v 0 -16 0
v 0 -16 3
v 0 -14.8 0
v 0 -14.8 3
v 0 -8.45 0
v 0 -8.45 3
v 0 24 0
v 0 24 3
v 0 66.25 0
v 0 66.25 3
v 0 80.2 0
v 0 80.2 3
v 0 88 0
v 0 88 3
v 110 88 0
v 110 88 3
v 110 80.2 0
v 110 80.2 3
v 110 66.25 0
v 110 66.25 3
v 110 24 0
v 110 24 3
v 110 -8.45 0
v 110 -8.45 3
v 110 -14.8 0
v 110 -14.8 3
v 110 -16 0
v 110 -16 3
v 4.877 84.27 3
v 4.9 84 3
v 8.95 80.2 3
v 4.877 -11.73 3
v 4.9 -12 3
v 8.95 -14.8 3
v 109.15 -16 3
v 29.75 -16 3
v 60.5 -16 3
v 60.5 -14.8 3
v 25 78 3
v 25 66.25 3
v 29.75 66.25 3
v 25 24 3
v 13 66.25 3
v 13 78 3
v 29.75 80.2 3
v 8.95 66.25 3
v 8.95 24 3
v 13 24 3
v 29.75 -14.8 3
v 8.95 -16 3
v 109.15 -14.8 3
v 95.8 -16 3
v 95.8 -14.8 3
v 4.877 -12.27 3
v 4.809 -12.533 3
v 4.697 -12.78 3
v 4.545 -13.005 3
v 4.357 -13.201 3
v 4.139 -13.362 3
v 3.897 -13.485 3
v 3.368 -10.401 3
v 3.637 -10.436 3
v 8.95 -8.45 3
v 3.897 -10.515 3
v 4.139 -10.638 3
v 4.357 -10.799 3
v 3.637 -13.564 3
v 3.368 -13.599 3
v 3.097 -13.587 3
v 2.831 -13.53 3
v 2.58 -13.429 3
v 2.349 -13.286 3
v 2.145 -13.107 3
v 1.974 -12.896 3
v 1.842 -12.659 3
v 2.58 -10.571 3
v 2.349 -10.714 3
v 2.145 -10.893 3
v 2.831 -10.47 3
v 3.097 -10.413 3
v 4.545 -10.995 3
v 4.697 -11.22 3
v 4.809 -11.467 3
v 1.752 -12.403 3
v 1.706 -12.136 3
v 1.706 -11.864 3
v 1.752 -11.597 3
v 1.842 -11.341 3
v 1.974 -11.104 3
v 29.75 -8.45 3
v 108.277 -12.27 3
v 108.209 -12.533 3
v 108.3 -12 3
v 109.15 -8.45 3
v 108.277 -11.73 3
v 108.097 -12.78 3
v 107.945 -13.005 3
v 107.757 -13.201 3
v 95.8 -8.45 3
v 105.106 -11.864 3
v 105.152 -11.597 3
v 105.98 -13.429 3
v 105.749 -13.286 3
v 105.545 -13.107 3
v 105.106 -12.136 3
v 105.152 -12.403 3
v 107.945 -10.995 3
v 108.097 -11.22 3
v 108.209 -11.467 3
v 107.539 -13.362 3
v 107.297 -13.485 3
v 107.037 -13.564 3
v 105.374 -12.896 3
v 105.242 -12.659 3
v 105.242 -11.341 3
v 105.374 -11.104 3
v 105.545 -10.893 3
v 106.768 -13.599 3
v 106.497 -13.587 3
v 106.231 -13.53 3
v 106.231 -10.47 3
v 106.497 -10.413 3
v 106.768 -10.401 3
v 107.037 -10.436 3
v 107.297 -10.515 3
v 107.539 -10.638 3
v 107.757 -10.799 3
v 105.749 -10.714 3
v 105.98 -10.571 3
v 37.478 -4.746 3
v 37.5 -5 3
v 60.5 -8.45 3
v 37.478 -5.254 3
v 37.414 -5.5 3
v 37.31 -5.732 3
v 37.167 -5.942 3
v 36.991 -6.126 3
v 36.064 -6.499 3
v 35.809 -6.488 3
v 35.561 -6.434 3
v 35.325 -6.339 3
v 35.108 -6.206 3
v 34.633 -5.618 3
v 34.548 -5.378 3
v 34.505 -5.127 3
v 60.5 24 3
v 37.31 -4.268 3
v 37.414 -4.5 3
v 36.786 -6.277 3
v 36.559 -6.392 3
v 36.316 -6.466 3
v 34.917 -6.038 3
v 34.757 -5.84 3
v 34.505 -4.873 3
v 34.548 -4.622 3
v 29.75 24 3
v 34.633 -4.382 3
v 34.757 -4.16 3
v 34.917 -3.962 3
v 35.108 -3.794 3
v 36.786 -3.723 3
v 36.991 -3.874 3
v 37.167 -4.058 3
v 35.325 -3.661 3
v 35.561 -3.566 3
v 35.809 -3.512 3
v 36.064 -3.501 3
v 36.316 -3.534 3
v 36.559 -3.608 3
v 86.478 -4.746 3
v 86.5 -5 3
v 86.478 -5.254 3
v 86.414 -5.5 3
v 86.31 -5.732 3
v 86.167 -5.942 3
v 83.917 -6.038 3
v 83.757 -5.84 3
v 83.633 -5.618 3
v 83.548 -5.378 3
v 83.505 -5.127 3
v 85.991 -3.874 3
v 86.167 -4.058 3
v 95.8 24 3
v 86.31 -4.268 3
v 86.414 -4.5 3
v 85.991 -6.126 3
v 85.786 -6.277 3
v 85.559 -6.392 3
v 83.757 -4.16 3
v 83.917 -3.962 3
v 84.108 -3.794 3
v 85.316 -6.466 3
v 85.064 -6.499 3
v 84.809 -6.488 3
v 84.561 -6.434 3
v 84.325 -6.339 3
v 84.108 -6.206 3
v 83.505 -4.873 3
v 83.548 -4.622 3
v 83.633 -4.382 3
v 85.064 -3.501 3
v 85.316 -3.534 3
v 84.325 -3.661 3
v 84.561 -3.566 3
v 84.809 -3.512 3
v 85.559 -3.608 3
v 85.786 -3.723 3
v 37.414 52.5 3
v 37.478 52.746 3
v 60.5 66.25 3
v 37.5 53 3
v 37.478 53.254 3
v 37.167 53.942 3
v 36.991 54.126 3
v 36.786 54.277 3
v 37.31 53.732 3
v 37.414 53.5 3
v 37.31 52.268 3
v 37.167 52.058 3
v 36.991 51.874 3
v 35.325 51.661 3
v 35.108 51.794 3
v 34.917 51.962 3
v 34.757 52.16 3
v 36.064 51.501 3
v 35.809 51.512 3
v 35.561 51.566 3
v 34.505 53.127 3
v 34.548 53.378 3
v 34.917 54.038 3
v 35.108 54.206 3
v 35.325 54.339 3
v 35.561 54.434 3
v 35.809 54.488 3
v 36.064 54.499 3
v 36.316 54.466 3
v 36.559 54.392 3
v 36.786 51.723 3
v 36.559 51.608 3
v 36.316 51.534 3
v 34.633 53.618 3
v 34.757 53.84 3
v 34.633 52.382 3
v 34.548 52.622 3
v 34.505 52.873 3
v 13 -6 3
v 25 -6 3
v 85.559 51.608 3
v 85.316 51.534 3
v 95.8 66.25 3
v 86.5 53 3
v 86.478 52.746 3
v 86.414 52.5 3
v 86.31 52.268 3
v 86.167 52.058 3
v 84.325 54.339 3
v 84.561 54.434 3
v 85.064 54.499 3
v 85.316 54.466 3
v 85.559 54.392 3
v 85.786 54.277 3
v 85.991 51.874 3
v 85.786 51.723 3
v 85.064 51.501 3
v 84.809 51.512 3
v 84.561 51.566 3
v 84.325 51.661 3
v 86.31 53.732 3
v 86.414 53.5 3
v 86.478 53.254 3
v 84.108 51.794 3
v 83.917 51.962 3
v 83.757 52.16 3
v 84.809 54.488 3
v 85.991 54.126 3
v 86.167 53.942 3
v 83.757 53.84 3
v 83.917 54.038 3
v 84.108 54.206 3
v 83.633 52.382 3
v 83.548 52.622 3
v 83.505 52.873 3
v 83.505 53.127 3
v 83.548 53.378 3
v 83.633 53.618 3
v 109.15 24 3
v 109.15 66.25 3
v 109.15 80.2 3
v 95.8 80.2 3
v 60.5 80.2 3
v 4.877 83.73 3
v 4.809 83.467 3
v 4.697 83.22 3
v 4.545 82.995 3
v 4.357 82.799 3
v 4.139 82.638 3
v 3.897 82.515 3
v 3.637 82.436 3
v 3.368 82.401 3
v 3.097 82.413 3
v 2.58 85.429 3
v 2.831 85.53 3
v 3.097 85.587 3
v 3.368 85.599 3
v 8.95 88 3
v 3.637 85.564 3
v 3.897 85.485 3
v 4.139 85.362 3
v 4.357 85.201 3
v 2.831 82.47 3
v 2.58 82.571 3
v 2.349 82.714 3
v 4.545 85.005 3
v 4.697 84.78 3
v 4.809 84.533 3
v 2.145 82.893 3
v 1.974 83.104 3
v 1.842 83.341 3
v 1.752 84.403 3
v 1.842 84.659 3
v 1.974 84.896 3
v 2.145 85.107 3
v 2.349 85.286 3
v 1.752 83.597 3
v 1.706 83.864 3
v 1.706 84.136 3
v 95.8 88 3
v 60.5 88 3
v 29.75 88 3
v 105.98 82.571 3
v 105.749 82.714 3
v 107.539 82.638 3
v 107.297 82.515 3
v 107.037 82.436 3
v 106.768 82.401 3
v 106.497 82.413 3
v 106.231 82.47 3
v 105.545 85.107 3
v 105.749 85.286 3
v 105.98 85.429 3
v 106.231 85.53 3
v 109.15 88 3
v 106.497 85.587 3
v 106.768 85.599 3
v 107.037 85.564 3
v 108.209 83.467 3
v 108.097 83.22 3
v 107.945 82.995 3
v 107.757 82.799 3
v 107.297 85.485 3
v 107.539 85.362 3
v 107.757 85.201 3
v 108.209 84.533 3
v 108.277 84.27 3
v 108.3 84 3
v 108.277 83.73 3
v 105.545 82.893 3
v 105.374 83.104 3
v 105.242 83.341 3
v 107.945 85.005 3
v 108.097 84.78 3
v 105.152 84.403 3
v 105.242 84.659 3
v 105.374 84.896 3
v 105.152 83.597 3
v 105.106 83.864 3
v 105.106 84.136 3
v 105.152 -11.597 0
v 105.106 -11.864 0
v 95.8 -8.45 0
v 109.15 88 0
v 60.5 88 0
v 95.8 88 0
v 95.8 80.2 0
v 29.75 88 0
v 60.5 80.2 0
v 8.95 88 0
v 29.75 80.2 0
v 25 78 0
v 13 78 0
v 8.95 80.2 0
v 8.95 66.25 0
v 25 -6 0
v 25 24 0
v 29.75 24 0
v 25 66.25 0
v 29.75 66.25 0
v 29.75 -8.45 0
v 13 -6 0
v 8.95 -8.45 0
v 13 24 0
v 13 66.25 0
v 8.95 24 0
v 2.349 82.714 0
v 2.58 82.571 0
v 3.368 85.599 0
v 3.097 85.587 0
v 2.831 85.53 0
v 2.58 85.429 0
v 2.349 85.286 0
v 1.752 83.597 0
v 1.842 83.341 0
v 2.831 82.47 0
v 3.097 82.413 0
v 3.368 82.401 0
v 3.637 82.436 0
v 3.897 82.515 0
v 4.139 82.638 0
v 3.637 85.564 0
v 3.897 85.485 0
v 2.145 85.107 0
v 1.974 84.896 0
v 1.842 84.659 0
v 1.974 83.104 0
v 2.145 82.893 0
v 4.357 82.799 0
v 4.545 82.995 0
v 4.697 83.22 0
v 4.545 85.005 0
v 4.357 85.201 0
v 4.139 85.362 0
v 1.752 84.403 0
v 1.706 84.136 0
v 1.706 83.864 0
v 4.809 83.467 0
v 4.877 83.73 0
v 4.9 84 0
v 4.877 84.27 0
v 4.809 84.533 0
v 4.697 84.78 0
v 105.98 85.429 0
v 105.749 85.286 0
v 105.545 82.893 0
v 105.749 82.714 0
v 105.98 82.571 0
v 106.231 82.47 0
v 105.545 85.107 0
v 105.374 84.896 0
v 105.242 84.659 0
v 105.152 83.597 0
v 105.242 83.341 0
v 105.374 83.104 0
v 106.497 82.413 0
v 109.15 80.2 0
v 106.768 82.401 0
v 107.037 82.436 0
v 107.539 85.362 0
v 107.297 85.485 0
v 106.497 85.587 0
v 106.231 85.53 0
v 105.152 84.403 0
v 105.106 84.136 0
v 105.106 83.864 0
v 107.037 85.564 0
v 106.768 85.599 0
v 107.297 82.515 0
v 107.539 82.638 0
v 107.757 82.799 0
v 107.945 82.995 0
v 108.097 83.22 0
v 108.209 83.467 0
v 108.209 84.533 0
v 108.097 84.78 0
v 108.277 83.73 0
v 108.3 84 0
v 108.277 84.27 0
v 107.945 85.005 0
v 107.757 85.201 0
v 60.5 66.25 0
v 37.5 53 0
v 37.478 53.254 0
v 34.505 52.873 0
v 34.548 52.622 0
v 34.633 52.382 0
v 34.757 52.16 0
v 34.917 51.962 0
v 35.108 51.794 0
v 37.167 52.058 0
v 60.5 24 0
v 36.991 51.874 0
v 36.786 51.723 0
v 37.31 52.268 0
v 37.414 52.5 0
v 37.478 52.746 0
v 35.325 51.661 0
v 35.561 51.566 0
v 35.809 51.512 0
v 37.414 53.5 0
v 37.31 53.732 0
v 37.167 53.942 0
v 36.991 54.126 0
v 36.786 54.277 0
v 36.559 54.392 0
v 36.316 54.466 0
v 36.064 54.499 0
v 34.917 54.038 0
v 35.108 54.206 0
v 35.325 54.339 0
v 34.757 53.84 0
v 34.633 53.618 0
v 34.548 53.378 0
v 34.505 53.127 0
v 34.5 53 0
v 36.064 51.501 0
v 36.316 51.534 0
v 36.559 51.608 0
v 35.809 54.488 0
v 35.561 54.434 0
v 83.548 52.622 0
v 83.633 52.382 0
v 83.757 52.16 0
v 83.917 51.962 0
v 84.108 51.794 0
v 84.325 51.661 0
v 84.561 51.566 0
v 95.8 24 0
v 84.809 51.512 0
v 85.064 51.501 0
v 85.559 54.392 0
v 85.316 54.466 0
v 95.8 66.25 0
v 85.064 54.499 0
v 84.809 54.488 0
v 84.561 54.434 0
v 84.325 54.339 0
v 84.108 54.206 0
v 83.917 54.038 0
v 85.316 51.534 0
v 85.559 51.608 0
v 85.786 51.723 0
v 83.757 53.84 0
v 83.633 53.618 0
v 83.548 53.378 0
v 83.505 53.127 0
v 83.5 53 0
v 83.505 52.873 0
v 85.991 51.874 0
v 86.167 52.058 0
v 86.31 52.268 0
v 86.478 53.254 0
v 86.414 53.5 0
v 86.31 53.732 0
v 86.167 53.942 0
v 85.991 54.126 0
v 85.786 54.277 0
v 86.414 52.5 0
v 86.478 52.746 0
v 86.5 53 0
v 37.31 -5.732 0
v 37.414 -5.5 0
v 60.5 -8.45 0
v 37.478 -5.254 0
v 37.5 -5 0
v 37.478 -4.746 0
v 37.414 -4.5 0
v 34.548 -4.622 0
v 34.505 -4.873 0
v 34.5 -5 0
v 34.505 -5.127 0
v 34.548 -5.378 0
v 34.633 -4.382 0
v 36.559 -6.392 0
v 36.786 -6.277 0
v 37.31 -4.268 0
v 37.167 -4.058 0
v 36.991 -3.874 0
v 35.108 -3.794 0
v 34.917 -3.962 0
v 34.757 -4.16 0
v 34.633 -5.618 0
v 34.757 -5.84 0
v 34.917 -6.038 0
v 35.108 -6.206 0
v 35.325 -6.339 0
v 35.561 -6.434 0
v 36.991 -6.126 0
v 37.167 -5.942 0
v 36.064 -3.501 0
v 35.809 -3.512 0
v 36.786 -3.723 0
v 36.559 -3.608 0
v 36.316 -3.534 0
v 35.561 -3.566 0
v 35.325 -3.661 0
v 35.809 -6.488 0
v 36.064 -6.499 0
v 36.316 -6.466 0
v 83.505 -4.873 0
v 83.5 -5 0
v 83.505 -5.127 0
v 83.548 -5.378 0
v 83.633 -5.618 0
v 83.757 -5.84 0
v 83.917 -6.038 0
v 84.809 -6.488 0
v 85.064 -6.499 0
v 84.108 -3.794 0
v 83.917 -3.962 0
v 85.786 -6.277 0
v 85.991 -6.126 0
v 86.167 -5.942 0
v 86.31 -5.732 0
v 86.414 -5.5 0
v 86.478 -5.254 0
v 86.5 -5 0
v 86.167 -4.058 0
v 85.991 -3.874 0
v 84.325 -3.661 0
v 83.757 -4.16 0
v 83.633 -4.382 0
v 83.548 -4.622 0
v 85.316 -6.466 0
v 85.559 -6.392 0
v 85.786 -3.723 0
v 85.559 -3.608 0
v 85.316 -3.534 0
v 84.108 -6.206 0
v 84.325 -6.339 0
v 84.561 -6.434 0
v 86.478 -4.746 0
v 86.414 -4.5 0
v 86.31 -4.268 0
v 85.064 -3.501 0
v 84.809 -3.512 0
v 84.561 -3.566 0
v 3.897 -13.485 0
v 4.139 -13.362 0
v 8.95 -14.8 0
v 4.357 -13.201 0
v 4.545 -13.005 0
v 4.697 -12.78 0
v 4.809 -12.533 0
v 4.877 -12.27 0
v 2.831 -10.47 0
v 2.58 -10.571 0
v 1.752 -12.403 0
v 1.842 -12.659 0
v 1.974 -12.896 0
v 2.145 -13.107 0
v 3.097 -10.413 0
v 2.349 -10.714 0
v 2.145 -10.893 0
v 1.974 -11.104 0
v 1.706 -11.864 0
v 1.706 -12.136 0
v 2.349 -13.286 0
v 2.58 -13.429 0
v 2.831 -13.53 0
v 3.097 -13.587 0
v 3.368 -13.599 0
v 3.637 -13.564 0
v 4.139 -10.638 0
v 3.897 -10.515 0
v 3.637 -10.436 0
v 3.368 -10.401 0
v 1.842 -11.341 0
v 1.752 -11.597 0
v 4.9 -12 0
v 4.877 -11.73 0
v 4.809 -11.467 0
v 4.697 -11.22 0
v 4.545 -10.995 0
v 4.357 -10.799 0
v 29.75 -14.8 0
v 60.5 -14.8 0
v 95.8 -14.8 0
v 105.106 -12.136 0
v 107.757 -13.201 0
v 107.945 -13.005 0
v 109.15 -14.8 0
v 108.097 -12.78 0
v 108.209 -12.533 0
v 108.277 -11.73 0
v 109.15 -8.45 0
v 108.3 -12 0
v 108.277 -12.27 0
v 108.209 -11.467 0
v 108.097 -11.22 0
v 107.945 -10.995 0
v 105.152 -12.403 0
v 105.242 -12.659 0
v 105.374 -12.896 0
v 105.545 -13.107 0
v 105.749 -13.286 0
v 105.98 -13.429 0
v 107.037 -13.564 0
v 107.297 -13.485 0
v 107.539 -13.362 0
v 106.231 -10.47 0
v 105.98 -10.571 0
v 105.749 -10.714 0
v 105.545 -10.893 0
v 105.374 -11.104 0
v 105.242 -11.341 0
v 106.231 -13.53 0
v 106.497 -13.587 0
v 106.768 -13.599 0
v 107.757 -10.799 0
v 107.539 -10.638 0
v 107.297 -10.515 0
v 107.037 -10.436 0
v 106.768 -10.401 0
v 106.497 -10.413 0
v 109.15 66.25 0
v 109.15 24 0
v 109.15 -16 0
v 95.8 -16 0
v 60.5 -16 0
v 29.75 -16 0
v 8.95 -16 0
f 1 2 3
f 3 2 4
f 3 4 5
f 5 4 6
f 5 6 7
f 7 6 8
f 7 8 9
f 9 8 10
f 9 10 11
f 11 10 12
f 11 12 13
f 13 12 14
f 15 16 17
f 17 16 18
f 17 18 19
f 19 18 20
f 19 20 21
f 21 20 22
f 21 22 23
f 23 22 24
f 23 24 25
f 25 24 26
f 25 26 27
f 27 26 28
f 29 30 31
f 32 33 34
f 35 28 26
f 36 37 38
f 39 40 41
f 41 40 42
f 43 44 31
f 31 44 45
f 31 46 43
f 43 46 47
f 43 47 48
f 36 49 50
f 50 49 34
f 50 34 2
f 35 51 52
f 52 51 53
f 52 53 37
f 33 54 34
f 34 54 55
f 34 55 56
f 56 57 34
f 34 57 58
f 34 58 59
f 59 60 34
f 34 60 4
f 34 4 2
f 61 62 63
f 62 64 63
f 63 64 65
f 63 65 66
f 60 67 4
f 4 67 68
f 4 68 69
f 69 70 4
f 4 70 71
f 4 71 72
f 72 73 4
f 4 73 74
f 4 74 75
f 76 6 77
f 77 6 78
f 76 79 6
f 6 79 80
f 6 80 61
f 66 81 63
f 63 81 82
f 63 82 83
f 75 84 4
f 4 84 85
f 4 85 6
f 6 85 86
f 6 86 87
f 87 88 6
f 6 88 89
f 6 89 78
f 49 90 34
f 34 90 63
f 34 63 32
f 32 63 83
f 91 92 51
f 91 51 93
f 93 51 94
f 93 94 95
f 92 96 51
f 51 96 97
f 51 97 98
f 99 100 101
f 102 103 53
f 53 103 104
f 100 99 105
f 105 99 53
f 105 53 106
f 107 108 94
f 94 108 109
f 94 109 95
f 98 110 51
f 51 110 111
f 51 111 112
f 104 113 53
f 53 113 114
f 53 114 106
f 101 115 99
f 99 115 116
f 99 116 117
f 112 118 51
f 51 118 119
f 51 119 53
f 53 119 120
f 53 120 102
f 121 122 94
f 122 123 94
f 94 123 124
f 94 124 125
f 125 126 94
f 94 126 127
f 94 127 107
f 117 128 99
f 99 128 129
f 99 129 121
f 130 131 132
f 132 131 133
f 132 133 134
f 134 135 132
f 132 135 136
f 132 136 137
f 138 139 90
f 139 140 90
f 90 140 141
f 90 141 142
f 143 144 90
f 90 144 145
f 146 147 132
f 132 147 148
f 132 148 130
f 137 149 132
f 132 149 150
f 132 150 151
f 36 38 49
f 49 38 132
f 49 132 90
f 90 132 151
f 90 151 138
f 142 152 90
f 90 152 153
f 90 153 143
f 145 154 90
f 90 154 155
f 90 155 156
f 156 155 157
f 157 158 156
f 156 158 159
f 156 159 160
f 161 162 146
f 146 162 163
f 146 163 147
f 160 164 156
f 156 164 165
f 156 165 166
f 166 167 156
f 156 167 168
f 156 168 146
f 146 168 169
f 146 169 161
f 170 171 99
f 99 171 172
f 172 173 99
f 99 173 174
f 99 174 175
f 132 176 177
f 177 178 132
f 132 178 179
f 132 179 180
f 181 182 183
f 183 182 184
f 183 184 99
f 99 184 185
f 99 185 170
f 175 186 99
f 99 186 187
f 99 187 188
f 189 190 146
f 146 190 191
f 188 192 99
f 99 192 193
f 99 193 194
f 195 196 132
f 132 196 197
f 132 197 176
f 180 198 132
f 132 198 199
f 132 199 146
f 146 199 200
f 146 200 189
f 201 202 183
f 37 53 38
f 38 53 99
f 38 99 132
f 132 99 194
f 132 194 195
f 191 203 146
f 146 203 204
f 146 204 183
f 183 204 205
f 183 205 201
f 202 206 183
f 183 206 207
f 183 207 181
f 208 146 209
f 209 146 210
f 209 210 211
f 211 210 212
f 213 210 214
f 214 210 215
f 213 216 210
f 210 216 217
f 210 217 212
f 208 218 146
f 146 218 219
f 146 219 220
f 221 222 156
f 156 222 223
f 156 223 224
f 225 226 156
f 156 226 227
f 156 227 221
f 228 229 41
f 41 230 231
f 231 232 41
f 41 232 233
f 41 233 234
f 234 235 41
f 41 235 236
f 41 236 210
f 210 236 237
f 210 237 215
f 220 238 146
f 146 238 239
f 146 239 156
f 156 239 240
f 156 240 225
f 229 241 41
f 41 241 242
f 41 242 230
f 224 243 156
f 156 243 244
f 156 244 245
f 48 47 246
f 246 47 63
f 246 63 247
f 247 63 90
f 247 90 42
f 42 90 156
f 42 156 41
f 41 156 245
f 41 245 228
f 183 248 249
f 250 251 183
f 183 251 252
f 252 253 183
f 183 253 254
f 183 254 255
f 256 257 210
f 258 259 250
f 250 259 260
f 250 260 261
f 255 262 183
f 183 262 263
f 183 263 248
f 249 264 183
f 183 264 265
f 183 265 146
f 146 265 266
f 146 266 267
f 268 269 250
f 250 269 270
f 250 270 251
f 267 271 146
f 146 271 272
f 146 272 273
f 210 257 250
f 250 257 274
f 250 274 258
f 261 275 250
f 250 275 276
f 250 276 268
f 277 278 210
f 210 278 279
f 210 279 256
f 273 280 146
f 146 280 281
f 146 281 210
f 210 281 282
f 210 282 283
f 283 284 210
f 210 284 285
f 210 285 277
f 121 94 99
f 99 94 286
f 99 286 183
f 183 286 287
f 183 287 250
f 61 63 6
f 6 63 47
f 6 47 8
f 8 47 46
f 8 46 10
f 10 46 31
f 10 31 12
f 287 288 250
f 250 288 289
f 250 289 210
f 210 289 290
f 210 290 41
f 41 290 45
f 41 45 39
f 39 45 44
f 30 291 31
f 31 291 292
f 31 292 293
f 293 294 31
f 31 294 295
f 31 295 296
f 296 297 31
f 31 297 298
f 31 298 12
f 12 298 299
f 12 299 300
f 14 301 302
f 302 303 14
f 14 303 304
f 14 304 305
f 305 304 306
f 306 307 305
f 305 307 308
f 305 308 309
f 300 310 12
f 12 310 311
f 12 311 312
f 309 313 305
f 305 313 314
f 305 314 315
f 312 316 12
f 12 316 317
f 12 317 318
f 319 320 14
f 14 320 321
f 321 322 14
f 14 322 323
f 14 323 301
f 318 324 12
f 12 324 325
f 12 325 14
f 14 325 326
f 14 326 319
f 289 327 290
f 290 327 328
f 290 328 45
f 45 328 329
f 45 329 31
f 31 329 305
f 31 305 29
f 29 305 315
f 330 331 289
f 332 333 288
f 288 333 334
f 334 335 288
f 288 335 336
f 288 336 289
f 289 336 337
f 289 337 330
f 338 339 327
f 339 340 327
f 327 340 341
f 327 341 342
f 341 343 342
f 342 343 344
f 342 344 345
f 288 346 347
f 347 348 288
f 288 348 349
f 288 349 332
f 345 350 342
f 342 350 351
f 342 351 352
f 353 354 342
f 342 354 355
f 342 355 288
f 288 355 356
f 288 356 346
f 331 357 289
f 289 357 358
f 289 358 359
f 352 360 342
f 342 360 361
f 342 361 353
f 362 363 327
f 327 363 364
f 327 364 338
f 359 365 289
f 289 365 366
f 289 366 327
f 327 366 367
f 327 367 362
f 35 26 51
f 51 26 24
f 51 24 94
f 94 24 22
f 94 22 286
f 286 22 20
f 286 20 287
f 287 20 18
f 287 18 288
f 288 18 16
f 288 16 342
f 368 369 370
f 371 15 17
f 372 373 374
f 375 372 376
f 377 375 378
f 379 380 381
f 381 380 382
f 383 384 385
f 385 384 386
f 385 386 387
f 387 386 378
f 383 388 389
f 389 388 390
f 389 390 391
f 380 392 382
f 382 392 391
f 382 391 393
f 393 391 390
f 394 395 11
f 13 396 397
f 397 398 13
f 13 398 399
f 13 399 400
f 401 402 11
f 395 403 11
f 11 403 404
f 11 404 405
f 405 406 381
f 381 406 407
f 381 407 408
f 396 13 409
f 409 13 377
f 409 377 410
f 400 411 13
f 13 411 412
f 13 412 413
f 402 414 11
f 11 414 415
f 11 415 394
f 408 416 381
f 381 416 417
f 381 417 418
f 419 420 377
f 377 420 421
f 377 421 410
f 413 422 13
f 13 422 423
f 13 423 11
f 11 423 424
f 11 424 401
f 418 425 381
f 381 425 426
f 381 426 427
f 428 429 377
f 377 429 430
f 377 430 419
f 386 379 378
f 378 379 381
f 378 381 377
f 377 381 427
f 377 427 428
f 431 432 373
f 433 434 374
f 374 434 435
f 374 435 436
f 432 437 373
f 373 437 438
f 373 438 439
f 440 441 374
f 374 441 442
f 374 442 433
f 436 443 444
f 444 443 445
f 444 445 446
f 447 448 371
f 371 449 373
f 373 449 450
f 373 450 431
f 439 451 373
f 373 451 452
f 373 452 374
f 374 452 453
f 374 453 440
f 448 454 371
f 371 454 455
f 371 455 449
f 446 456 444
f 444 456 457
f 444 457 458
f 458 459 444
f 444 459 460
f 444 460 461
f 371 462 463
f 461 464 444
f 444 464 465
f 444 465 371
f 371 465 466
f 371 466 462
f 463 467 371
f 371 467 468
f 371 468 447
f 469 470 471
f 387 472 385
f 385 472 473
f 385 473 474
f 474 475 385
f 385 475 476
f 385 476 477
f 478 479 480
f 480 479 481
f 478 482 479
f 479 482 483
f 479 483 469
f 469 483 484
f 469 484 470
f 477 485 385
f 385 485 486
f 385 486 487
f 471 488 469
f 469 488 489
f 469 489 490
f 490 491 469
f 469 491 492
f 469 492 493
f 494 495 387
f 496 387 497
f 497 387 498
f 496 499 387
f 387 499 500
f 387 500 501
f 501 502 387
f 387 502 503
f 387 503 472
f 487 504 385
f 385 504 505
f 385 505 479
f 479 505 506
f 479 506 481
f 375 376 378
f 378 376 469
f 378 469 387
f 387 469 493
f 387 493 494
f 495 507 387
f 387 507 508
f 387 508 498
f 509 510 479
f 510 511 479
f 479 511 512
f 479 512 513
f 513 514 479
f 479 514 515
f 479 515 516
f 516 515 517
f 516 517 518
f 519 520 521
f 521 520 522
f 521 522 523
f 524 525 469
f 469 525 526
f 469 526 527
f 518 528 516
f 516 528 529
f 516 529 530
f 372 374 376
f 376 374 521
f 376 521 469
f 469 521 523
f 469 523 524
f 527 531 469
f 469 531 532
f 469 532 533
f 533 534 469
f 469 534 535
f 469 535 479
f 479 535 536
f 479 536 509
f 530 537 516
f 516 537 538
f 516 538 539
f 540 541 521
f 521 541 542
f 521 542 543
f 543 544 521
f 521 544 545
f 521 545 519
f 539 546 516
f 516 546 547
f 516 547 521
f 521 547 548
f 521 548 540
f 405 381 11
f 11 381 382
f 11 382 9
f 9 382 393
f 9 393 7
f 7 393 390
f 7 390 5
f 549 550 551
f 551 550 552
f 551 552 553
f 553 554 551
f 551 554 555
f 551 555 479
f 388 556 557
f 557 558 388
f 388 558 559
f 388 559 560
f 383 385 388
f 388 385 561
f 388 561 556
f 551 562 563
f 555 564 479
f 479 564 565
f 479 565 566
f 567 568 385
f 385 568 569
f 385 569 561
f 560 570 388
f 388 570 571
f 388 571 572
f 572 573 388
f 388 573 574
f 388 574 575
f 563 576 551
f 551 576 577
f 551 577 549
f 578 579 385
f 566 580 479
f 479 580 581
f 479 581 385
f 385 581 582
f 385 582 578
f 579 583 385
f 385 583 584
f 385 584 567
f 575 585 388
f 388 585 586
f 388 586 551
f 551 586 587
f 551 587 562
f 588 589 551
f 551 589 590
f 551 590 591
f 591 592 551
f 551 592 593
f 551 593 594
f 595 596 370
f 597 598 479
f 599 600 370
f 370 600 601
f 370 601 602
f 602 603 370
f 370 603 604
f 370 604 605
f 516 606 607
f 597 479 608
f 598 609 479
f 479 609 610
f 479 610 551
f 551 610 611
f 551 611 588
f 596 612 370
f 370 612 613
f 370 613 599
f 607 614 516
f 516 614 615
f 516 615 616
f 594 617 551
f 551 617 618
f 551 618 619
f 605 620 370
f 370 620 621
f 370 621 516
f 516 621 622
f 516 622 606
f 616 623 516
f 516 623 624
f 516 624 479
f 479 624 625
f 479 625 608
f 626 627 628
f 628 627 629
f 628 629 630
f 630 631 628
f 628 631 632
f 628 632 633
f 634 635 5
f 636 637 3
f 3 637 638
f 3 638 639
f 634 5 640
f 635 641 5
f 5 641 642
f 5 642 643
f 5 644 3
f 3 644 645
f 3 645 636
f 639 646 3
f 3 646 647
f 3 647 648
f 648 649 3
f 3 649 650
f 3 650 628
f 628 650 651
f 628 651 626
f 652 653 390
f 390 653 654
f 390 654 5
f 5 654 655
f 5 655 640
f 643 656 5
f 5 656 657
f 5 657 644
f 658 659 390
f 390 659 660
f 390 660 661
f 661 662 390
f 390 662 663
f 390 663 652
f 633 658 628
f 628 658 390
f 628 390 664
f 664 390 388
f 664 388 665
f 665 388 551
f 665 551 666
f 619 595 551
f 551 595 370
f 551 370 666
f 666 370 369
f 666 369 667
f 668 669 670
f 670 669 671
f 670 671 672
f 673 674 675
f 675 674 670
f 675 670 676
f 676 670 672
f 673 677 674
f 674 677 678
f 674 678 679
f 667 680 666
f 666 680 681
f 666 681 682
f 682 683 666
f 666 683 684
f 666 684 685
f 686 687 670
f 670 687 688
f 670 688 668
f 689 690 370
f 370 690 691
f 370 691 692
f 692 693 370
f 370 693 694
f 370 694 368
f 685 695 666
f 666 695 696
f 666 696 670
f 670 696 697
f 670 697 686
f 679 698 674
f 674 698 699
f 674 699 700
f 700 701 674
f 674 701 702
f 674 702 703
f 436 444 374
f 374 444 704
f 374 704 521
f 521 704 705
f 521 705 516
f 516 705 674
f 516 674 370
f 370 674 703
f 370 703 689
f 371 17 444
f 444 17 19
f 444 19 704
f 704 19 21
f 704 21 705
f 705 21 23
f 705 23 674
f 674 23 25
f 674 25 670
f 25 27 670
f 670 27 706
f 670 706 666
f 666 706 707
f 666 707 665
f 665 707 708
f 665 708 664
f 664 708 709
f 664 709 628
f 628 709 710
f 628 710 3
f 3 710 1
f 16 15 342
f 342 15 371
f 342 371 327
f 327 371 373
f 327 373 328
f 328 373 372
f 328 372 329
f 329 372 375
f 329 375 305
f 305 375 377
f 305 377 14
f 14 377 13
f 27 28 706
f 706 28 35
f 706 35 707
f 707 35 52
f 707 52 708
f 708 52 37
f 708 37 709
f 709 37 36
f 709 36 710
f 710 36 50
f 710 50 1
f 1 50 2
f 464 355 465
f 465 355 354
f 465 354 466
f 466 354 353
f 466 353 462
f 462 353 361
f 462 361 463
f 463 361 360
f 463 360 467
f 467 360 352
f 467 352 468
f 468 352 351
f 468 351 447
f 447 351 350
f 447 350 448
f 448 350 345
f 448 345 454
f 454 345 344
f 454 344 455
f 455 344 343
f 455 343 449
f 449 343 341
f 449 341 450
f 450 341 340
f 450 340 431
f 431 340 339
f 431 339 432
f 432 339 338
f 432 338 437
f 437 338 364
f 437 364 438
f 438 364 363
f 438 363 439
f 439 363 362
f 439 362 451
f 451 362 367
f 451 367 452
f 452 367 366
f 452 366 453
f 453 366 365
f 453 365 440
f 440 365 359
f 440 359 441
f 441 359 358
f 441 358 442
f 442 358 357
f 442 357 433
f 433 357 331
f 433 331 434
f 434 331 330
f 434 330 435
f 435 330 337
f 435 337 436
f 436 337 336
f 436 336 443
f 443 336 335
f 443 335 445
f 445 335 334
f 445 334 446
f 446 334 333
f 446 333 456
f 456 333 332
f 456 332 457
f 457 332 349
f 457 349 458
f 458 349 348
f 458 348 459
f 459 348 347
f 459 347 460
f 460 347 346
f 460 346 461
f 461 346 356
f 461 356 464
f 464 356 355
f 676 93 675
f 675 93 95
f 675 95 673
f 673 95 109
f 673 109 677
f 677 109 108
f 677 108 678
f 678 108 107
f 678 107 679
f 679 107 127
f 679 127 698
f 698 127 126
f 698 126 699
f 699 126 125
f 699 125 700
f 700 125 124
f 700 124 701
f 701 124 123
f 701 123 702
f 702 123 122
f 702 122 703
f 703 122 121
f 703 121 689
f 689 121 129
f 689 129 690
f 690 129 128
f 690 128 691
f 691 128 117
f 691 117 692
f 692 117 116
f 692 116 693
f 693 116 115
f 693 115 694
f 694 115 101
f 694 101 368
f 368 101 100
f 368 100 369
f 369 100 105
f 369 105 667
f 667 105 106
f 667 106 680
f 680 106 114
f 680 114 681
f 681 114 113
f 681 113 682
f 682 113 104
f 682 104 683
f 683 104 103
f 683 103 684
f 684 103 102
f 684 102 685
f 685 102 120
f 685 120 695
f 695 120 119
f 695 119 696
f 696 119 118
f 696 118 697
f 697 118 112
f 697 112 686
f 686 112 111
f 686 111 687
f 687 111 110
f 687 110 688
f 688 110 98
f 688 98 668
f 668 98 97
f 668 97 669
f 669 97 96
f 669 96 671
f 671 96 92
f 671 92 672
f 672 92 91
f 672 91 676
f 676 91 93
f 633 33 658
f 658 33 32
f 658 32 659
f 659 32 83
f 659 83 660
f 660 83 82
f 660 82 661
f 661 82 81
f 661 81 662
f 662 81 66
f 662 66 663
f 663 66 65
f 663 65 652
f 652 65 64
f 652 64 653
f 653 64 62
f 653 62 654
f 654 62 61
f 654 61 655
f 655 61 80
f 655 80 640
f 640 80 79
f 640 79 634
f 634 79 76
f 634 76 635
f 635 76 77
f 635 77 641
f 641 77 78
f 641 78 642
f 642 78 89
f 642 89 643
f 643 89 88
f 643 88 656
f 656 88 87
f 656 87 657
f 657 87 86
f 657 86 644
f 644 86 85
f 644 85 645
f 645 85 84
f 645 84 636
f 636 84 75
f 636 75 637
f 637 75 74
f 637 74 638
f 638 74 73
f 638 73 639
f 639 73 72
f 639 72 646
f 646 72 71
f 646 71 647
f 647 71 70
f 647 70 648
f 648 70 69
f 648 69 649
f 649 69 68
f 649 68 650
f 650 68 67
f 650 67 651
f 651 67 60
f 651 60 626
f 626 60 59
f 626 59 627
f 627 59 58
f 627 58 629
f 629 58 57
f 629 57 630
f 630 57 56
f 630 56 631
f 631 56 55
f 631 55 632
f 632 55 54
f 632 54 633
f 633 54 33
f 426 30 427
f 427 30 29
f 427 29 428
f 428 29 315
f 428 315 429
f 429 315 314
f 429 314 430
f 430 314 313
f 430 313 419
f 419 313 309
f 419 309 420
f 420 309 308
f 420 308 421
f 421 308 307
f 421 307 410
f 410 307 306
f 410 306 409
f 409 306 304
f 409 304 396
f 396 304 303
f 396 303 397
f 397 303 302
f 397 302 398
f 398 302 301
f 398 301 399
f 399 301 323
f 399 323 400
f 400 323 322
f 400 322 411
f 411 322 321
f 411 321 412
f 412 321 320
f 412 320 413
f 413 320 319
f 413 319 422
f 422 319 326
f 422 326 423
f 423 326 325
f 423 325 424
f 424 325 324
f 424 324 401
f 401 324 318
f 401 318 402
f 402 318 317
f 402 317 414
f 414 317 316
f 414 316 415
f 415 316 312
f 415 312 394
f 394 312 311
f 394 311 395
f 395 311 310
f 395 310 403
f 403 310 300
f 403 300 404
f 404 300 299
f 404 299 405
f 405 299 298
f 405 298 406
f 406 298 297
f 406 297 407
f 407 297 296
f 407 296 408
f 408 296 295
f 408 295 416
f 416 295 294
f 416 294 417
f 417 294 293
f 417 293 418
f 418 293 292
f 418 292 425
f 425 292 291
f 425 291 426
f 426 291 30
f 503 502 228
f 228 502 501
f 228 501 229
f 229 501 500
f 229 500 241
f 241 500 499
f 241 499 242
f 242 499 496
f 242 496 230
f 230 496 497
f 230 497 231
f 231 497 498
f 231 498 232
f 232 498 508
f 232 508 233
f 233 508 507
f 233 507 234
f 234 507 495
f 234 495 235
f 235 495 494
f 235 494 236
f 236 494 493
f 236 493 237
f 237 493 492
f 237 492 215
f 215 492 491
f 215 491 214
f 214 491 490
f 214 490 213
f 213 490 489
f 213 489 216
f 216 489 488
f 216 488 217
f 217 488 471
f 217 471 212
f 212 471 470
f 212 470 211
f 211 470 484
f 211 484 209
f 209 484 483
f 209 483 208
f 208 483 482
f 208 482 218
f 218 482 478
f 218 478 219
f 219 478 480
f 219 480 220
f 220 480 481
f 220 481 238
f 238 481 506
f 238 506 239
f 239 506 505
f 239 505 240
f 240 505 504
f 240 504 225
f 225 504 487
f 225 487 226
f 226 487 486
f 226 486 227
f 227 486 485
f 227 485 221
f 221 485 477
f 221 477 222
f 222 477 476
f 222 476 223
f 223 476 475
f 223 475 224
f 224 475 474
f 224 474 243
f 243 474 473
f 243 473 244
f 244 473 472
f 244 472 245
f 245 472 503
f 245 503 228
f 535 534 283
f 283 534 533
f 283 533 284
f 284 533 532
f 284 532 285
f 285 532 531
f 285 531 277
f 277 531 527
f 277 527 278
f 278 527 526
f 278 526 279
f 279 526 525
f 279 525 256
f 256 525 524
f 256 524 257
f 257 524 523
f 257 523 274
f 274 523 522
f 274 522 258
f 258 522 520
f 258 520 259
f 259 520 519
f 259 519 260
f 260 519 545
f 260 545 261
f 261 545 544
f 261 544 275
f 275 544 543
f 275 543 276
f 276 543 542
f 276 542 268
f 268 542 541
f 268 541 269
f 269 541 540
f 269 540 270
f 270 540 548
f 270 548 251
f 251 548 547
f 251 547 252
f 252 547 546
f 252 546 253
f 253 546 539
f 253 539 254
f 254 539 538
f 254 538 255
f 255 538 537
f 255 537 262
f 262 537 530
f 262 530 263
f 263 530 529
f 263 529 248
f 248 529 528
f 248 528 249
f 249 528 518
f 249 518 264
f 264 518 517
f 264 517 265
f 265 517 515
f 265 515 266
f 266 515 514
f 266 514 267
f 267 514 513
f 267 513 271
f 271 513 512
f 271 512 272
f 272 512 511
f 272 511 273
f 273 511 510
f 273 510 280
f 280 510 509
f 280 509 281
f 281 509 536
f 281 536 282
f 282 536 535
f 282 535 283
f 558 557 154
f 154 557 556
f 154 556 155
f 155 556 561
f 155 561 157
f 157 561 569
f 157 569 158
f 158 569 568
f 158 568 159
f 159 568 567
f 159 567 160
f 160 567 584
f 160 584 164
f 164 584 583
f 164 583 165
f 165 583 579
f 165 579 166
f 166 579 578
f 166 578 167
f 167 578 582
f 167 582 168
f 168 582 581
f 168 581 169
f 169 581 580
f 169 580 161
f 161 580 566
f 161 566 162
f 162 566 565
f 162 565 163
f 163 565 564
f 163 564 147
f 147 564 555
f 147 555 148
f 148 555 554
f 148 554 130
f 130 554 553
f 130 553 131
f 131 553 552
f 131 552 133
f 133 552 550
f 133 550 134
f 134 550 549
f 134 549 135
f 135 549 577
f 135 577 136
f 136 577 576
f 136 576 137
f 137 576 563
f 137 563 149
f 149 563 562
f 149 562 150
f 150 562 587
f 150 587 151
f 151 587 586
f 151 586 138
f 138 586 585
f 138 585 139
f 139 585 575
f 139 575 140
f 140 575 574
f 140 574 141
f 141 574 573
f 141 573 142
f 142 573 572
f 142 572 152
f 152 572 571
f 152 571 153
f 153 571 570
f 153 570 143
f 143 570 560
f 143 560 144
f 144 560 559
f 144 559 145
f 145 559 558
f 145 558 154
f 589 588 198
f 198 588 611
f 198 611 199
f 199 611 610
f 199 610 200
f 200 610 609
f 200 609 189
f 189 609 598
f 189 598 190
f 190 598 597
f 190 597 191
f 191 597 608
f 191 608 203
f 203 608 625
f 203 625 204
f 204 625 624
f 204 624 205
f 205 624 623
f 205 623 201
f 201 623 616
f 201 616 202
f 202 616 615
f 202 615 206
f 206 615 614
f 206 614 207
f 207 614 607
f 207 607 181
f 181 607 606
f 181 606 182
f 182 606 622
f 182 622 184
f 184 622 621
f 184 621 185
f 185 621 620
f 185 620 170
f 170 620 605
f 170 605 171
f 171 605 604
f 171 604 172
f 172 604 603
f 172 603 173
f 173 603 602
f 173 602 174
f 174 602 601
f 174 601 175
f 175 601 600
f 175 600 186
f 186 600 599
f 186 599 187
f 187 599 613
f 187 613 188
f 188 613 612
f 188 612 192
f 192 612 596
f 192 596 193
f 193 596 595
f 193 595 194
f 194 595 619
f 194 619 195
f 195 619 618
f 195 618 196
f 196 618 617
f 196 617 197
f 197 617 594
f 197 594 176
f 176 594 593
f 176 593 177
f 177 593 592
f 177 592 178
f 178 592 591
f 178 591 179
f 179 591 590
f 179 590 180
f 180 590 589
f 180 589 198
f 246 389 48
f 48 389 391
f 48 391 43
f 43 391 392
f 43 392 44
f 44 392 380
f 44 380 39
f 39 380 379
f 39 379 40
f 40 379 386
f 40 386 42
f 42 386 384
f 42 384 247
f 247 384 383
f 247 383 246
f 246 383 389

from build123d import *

# Parameters (mm, degrees)
CROQUIS1_W                   = 110
CROQUIS1_H                   = 92
SALIENTE_EXTRUIR1_DEPTH      = 3
CROQUIS7_W                   = 110
CROQUIS7_H                   = 3
SALIENTE_EXTRUIR2_DEPTH      = 6
CROQUIS8_W                   = 110
CROQUIS8_H                   = 3
SALIENTE_EXTRUIR3_DEPTH      = 6
TALADRO_DE_MARGEN_PARA_M31_D = 3.2
CORTAR_EXTRUIR2_REACH        = 142.901
CROQUIS13_R                  = 1.5
CORTAR_EXTRUIR3_REACH        = 142.901
CROQUIS14_W                  = 12
CROQUIS14_H                  = 84


with BuildPart() as part:
    # Croquis1 → Saliente-Extruir1 (new body)
    with BuildSketch(Plane.XY):
        with Locations((55, 36)):
            Rectangle(CROQUIS1_W, CROQUIS1_H)
    extrude(amount=SALIENTE_EXTRUIR1_DEPTH)

    # Croquis7 → Saliente-Extruir2 (add)
    with BuildSketch(Plane(origin=(0, 82, 0), x_dir=(1, 0, 0), z_dir=(0, 1, 0))):
        with Locations((55, -1.5)):
            Rectangle(CROQUIS7_W, CROQUIS7_H)
    extrude(amount=SALIENTE_EXTRUIR2_DEPTH)

    # Croquis8 → Saliente-Extruir3 (add)
    with BuildSketch(Plane.XZ.offset(10)):
        with Locations((55, 1.5)):
            Rectangle(CROQUIS8_W, CROQUIS8_H)
    extrude(amount=SALIENTE_EXTRUIR3_DEPTH)

    # Taladro de margen para M31 (through all)
    with Locations(Plane(origin=(3.3, 84, 3), x_dir=(1, 0, 0), z_dir=(0, 0, 1))):
        with Locations((0, 0), (0, -96), (103.4, -96), (103.4, 0)):
            Hole(TALADRO_DE_MARGEN_PARA_M31_D / 2)

    # Croquis13 → Cortar-Extruir2 (cut, up to next)
    with BuildSketch(Plane.XY.offset(3), mode=Mode.PRIVATE) as cortar_extruir2_sk1:
        with Locations((36, 53)):
            Circle(CROQUIS13_R)
    cortar_extruir2_tool1 = extrude(cortar_extruir2_sk1.sketch, amount=-CORTAR_EXTRUIR2_REACH, mode=Mode.PRIVATE) & part.part
    # Croquis13 → Cortar-Extruir2 (cut, up to next)
    with BuildSketch(Plane.XY.offset(3), mode=Mode.PRIVATE) as cortar_extruir2_sk2:
        with Locations((85, 53)):
            Circle(CROQUIS13_R)
    cortar_extruir2_tool2 = extrude(cortar_extruir2_sk2.sketch, amount=-CORTAR_EXTRUIR2_REACH, mode=Mode.PRIVATE) & part.part
    # Croquis13 → Cortar-Extruir2 (cut, up to next)
    with BuildSketch(Plane.XY.offset(3), mode=Mode.PRIVATE) as cortar_extruir2_sk3:
        with Locations((36, -5)):
            Circle(CROQUIS13_R)
    cortar_extruir2_tool3 = extrude(cortar_extruir2_sk3.sketch, amount=-CORTAR_EXTRUIR2_REACH, mode=Mode.PRIVATE) & part.part
    # Croquis13 → Cortar-Extruir2 (cut, up to next)
    with BuildSketch(Plane.XY.offset(3), mode=Mode.PRIVATE) as cortar_extruir2_sk4:
        with Locations((85, -5)):
            Circle(CROQUIS13_R)
    cortar_extruir2_tool4 = extrude(cortar_extruir2_sk4.sketch, amount=-CORTAR_EXTRUIR2_REACH, mode=Mode.PRIVATE) & part.part
    add(cortar_extruir2_tool1.solids().sort_by_distance((36, 53, 3))[0], mode=Mode.SUBTRACT)
    add(cortar_extruir2_tool2.solids().sort_by_distance((85, 53, 3))[0], mode=Mode.SUBTRACT)
    add(cortar_extruir2_tool3.solids().sort_by_distance((36, -5, 3))[0], mode=Mode.SUBTRACT)
    add(cortar_extruir2_tool4.solids().sort_by_distance((85, -5, 3))[0], mode=Mode.SUBTRACT)

    # Croquis14 → Cortar-Extruir3 (cut, up to next)
    with BuildSketch(Plane.XY.offset(3), mode=Mode.PRIVATE) as cortar_extruir3_sk1:
        with Locations((19, 36)):
            Rectangle(CROQUIS14_W, CROQUIS14_H)
    cortar_extruir3_tool1 = extrude(cortar_extruir3_sk1.sketch, amount=-CORTAR_EXTRUIR3_REACH, mode=Mode.PRIVATE) & part.part
    add(cortar_extruir3_tool1.solids().sort_by_distance((19, 36, 3))[0], mode=Mode.SUBTRACT)


solid = part.part
